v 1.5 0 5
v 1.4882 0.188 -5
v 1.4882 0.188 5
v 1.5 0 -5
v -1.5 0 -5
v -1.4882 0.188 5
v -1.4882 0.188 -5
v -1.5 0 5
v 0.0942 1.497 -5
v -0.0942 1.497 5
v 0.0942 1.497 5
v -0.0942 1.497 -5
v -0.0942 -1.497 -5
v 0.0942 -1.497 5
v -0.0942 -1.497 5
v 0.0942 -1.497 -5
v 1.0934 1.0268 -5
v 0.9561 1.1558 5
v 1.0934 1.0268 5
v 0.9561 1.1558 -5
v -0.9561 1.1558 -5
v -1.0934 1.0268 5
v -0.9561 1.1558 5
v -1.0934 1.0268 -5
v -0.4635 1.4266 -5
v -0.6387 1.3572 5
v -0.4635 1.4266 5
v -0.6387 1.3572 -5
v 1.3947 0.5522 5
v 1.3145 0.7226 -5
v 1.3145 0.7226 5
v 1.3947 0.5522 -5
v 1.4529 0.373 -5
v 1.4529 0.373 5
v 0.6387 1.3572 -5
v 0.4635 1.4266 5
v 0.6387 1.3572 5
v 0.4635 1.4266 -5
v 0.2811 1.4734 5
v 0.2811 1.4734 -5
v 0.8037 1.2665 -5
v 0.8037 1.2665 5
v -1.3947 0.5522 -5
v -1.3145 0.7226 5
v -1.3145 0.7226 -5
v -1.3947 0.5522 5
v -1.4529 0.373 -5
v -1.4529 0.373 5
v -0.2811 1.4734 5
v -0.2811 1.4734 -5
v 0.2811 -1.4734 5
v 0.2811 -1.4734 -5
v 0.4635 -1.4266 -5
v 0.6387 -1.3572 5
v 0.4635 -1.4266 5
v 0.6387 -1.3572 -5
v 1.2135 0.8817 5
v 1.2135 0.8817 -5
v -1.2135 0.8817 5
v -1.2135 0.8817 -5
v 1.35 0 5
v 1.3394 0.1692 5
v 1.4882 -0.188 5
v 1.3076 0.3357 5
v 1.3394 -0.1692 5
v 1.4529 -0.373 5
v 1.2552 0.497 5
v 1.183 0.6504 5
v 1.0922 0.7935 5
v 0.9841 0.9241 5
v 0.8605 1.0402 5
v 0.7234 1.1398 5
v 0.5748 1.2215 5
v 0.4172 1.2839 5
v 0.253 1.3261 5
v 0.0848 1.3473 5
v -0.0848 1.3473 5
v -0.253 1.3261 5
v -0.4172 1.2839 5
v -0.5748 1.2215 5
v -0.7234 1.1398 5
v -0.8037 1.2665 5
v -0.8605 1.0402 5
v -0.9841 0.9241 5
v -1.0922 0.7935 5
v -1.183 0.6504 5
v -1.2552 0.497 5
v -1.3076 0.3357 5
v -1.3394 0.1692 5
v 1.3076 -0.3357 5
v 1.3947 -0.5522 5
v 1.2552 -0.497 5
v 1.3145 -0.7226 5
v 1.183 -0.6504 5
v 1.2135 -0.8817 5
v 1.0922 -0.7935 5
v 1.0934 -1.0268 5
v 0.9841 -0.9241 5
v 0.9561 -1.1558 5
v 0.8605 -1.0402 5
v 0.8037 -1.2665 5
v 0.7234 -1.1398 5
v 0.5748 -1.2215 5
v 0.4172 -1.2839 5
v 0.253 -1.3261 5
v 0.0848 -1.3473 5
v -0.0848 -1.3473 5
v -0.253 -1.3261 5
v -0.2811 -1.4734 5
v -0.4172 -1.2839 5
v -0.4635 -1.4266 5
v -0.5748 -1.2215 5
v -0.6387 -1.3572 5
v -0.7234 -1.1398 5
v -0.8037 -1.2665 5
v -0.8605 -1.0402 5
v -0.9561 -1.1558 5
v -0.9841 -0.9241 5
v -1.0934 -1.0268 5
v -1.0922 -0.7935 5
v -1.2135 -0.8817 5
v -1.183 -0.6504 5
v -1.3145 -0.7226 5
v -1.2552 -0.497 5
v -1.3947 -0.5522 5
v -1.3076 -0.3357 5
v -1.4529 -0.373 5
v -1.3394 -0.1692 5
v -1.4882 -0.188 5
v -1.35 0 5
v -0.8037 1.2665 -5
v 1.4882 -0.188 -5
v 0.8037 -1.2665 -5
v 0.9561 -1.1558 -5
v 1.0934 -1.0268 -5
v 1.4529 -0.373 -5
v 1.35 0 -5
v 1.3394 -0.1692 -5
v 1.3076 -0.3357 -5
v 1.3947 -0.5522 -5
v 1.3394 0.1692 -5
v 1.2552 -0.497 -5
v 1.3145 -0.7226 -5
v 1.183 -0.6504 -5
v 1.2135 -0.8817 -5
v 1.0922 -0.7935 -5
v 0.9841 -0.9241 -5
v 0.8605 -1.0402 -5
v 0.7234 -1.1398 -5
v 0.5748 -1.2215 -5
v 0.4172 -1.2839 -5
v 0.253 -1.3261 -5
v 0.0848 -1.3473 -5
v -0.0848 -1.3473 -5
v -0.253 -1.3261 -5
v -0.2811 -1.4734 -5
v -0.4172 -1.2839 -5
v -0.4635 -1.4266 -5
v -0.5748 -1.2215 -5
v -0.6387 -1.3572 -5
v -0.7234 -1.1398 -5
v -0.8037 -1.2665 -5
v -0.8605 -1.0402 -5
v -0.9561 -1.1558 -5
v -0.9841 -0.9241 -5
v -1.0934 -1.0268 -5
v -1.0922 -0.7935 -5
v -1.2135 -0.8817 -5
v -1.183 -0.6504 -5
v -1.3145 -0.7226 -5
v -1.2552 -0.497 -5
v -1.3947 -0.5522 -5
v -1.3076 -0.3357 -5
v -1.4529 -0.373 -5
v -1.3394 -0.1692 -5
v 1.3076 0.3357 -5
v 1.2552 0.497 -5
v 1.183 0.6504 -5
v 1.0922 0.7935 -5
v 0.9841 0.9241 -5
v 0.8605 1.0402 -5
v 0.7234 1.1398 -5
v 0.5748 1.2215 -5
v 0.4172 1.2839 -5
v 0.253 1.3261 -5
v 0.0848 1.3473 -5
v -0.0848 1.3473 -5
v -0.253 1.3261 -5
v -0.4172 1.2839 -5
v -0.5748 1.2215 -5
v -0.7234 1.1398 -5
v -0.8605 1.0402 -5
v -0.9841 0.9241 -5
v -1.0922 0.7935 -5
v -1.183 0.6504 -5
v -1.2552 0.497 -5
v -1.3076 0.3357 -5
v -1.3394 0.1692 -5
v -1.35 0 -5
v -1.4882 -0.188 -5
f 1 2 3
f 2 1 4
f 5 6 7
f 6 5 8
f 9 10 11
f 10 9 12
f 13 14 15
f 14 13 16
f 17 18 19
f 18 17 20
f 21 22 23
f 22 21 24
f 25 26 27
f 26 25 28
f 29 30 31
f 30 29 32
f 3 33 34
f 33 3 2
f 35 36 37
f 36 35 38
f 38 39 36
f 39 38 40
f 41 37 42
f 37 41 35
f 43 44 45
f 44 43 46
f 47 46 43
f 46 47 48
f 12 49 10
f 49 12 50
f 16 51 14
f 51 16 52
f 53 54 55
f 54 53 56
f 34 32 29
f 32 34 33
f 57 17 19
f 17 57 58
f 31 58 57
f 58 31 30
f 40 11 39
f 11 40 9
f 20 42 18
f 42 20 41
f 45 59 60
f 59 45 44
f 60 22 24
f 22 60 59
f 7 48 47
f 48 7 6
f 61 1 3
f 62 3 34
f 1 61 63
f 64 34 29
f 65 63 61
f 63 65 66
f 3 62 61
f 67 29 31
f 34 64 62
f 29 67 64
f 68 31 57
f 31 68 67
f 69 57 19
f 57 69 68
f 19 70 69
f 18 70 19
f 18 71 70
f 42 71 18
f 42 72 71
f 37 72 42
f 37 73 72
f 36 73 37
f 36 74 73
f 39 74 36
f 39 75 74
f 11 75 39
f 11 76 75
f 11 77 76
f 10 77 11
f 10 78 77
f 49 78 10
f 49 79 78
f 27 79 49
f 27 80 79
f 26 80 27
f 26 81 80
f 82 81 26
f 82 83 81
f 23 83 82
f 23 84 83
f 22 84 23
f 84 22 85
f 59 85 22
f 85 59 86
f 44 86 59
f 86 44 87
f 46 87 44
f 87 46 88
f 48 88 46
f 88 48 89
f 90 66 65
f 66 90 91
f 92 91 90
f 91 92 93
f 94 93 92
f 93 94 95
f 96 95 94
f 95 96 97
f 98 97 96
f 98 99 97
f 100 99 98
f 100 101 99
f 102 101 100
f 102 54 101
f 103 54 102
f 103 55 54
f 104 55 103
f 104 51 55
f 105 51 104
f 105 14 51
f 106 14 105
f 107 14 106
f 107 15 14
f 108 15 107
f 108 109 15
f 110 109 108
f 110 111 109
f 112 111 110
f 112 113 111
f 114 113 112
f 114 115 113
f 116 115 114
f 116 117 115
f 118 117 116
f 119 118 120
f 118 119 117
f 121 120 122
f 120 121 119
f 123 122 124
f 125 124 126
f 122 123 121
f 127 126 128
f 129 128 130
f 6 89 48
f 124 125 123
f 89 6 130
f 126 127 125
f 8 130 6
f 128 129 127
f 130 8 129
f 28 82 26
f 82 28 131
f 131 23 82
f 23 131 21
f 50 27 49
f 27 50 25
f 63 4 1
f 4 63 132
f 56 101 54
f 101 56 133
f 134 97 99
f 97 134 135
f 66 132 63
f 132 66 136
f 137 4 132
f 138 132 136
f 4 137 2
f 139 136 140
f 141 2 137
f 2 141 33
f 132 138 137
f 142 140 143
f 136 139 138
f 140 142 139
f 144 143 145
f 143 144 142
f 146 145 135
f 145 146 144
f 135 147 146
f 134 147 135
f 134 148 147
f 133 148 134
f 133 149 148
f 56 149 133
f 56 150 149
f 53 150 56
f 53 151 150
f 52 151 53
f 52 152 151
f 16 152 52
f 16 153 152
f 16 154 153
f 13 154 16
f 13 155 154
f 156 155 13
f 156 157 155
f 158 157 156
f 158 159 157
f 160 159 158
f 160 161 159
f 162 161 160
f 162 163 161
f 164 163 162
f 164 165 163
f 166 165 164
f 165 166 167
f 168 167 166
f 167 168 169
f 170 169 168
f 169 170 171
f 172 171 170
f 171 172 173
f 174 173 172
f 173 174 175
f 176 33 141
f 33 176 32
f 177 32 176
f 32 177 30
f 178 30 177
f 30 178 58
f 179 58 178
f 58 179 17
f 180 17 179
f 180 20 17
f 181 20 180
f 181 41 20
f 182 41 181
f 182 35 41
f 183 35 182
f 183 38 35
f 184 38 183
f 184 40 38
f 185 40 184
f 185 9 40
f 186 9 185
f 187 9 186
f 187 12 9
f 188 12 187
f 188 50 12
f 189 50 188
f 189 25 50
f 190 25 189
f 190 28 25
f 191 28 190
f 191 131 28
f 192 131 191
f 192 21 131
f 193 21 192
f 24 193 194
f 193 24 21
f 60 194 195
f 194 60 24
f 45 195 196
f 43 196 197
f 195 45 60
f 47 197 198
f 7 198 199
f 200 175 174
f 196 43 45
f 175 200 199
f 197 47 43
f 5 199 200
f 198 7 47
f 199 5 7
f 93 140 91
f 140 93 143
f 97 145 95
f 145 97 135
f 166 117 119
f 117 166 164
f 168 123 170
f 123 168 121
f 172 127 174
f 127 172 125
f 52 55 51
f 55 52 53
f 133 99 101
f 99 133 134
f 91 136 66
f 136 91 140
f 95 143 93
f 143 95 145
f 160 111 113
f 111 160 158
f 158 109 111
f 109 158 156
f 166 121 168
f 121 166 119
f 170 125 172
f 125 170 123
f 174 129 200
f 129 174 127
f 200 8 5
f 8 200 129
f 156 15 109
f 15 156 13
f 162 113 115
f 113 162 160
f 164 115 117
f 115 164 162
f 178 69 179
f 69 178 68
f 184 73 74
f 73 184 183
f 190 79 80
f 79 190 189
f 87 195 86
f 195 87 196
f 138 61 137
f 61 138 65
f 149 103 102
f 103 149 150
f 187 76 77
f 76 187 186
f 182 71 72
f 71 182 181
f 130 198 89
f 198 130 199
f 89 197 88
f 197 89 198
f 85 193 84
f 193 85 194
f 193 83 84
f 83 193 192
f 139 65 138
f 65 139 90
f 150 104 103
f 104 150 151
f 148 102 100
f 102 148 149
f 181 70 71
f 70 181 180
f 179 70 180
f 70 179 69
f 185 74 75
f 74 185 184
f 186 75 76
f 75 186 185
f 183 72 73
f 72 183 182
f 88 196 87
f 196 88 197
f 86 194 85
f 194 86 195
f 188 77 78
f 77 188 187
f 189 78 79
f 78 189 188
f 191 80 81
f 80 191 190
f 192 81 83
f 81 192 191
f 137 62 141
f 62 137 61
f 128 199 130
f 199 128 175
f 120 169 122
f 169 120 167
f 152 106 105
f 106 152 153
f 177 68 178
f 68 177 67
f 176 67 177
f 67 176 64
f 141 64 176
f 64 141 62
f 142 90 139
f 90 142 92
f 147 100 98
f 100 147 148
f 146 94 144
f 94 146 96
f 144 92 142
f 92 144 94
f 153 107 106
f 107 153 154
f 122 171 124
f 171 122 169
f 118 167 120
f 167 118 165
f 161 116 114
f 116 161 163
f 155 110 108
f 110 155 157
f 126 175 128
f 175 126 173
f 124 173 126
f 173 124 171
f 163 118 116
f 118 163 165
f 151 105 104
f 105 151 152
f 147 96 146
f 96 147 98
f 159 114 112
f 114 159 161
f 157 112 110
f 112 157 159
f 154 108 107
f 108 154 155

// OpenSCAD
$fn = 50;


difference() {
	union() {
		translate(v = [0, 0, -5.0000000000]) {
			cylinder(h = 10, r = 1.5000000000);
		}
	}
	union() {
		translate(v = [0, 0, -100.0000000000]) {
			cylinder(h = 200, r = 1.3500000000);
		}
	}
}
